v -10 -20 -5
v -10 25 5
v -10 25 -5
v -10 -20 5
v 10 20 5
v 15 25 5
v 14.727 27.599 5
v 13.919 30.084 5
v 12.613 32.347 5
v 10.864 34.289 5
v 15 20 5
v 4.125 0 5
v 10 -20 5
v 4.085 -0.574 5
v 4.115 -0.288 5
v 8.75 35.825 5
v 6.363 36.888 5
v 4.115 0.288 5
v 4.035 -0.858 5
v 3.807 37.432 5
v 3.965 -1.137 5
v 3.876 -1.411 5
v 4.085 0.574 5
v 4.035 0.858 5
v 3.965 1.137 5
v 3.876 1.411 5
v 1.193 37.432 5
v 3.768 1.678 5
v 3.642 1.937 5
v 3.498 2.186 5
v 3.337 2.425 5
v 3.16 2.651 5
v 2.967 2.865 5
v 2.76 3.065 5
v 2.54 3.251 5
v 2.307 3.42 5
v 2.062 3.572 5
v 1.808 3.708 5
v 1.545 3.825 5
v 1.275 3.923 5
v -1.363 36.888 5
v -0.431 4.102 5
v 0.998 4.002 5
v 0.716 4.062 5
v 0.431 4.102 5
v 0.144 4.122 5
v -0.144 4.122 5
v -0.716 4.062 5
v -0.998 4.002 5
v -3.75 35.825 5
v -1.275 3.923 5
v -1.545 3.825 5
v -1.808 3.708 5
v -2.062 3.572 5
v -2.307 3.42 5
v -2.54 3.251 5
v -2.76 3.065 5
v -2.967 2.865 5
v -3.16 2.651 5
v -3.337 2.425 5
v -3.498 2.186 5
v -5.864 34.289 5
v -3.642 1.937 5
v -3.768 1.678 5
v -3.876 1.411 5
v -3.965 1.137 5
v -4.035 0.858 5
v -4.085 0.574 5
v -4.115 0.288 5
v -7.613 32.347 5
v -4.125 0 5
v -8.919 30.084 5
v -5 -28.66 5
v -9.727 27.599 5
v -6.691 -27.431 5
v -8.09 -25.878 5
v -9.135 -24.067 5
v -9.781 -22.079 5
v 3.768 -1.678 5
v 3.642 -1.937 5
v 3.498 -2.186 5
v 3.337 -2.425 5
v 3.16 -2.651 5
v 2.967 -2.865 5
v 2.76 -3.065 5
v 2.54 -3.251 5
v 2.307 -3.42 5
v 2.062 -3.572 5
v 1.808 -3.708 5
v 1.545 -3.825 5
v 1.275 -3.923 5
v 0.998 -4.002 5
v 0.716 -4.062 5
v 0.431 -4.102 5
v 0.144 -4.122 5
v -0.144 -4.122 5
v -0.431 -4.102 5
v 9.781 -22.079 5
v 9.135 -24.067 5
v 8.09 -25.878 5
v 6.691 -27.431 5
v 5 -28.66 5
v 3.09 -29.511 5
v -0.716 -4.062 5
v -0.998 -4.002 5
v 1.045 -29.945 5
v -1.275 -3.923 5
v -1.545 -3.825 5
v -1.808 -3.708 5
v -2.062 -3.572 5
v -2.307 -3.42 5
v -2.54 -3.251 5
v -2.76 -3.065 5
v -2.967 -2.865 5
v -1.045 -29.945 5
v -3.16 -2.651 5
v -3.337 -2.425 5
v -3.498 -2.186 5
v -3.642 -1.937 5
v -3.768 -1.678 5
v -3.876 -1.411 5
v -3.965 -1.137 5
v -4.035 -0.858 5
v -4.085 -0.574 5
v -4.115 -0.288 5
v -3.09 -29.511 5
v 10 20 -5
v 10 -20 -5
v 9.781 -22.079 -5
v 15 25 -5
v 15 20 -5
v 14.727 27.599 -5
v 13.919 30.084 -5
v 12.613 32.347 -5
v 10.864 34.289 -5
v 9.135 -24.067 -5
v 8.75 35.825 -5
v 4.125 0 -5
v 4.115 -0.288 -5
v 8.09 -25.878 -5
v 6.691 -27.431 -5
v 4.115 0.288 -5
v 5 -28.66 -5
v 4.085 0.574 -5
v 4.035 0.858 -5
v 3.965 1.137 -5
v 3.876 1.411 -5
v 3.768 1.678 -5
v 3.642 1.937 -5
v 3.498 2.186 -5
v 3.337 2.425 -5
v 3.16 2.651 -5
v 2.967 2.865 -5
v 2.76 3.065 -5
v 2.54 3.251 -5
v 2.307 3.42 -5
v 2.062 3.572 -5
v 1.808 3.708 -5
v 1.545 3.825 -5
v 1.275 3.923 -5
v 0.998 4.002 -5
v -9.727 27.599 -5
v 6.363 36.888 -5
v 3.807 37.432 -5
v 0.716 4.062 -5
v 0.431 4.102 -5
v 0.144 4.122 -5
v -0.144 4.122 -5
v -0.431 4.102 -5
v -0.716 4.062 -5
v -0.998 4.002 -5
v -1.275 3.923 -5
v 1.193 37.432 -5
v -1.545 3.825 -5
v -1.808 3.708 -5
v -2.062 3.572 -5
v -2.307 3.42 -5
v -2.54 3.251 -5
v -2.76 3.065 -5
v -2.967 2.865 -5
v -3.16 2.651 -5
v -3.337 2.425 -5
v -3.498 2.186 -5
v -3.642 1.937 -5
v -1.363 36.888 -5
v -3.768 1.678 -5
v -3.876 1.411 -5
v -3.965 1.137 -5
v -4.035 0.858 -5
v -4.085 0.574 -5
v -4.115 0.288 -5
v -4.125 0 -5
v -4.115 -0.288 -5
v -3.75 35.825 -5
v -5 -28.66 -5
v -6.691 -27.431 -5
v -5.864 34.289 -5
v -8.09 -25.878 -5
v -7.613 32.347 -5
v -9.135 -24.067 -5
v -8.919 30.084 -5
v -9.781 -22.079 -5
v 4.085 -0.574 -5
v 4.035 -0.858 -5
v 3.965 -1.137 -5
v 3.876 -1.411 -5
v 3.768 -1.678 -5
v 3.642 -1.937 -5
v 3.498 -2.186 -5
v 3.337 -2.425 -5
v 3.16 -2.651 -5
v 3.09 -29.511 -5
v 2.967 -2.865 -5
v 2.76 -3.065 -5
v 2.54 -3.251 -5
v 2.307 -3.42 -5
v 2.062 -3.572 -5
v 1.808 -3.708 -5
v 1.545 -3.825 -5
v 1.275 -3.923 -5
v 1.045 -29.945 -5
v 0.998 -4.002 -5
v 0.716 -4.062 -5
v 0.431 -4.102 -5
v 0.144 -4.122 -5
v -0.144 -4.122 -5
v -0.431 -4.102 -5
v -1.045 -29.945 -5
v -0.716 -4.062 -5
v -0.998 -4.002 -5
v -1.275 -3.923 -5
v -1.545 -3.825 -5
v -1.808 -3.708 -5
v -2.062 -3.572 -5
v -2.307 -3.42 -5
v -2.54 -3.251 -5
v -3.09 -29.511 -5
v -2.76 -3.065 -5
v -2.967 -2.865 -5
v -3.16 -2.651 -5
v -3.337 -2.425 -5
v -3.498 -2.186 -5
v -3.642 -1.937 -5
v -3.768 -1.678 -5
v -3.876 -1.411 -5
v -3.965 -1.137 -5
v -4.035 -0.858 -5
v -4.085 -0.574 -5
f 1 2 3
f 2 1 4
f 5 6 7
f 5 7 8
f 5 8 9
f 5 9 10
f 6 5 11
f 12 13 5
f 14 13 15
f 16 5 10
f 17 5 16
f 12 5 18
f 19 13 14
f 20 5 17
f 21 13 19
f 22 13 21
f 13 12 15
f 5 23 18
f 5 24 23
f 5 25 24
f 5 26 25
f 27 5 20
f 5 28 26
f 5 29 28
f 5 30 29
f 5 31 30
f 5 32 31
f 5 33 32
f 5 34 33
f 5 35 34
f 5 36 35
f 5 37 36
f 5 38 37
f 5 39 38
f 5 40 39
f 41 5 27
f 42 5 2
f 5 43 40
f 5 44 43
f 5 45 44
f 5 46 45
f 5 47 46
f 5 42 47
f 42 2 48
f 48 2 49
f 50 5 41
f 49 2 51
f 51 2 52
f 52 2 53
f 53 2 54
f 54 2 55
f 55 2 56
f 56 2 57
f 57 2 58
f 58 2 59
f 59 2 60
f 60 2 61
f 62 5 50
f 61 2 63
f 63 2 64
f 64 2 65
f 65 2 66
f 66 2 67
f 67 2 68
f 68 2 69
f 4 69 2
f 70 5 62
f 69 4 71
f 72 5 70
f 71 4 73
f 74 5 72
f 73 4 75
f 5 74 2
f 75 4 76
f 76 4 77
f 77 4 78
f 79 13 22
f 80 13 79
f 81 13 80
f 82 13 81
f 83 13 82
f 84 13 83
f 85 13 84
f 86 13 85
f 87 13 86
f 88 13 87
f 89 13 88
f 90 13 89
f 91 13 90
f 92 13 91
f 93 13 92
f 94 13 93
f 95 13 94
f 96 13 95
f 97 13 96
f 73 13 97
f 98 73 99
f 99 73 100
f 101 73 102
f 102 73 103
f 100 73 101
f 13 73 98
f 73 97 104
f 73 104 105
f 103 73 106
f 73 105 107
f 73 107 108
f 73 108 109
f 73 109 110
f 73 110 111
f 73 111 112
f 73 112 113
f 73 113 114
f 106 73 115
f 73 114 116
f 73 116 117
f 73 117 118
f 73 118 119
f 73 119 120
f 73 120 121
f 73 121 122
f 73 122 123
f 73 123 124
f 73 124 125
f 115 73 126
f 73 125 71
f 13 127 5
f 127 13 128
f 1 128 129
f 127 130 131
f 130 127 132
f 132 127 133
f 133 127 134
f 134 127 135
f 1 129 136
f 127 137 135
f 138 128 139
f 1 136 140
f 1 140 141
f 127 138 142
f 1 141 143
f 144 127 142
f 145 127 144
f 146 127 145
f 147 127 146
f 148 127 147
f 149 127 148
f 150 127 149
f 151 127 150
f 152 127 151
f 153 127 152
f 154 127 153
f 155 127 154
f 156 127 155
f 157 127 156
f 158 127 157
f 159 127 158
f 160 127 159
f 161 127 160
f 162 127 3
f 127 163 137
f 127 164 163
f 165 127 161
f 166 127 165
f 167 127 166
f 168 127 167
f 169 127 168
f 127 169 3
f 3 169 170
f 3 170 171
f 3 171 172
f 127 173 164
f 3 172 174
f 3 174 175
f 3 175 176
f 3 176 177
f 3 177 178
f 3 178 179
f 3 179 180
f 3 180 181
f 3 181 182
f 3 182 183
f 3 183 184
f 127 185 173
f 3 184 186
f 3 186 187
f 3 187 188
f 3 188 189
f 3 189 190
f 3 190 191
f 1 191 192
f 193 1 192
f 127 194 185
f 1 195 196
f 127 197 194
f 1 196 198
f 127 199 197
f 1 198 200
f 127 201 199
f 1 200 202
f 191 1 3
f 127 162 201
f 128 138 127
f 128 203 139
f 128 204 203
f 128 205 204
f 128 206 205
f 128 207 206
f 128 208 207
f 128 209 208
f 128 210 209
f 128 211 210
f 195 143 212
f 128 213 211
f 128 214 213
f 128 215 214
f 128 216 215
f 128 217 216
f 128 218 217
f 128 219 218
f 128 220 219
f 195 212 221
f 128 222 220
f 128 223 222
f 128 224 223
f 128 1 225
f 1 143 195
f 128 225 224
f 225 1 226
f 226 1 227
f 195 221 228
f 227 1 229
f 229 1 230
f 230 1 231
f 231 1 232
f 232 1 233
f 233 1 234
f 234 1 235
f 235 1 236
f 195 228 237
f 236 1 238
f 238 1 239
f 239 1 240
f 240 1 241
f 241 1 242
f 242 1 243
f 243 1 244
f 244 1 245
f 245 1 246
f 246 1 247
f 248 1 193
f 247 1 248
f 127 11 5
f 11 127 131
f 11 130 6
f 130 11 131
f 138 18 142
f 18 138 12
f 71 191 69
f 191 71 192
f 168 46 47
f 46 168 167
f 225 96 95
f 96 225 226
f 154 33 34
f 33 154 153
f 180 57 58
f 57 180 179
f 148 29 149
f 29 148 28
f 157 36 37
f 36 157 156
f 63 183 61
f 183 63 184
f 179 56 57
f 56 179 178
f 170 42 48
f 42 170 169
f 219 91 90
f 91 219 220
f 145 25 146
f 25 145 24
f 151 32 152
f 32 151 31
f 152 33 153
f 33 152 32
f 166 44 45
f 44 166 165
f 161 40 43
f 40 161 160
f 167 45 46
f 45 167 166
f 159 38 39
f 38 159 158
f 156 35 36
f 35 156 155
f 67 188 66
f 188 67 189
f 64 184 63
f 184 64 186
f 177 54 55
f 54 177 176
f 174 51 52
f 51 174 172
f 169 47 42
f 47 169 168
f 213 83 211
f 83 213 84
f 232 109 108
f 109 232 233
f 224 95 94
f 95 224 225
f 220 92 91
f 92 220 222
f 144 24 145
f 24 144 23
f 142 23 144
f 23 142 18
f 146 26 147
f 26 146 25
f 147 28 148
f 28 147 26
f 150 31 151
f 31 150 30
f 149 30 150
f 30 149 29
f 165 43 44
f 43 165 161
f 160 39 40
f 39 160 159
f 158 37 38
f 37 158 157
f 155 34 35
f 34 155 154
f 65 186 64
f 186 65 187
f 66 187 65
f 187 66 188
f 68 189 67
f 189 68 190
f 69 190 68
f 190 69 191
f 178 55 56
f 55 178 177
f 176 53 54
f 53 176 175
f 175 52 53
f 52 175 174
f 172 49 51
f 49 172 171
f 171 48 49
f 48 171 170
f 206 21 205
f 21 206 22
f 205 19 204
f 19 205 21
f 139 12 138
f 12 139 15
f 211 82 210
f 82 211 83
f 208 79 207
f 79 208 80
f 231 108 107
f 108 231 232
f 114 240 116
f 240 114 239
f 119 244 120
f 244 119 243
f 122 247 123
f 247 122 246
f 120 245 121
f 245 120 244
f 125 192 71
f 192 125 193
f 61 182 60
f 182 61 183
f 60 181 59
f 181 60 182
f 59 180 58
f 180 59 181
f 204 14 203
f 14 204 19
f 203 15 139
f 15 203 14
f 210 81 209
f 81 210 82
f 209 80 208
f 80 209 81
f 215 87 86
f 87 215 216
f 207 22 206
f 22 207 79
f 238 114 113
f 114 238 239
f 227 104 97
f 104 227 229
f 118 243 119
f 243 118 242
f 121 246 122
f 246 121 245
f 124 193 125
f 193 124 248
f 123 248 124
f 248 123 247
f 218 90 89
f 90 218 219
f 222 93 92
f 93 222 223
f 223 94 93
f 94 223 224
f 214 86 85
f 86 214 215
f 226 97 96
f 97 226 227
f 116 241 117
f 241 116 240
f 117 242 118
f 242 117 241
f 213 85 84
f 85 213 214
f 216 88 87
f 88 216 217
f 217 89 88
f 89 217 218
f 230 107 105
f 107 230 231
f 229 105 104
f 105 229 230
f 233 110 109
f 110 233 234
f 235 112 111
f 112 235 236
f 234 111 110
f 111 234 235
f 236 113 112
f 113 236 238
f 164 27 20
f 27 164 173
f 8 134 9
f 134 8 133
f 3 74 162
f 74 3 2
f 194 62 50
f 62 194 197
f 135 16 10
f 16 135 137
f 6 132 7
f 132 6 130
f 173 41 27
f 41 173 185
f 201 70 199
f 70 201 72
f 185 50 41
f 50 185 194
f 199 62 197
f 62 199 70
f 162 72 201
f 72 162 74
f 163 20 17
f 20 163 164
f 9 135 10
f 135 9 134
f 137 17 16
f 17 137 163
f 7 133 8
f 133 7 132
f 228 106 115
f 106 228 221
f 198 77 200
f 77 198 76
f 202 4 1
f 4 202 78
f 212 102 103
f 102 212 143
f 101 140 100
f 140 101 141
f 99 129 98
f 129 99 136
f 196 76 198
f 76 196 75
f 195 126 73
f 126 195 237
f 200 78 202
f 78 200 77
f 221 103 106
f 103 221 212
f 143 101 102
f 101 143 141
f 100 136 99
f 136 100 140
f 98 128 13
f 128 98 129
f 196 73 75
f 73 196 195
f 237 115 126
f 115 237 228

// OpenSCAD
//cube([120,120,3], center = true);
//translate([-45,-45,0])cylinder(h = 3, r=15, $fn = 180, center = true);
//rotate_extrude(convexity = 10, $fn = A) translate([20+1.5, 0, 0])circle(d = 3, $fn = B);
//module Test(){
//import("asd.stl");

//sphere(2, $fn=100); 

//linear_extrude(height = 10)text("asd",10);


/*
linear_extrude(height=100,twist=360,$fn=360) 
translate([45,0,0])
rotate([0,0,9])
square([5,15]);

rotate_extrude(angle = 270, $fn=30)
translate([10,0,0])square([10,5]);
*/

/*

CubePoints = [
  [  0,  0,  0 ],  //0
  [ 10,  0,  0 ],  //1
  [ 10,  7,  0 ],  //2
  [  0,  7,  0 ],  //3
  [  0,  0,  5 ],  //4
  [ 10,  0,  5 ],  //5
  [ 10,  7,  5 ],  //6
  [  0,  7,  5 ]]; //7
  
CubeFaces = [
  [0,1,2,3],  // bottom
  [4,5,1,0],  // front
  [7,6,5,4],  // top
  [5,6,2,1],  // right
  [6,7,3,2],  // back
  [7,4,0,3]]; // left
  
polyhedron( CubePoints, CubeFaces );
     
*/     
difference(){   
union(){
cube([20,40,10], center = true);

translate([2.5,22.5,0])cube([25,5,10], center = true);
}
cylinder(h = 12, d=8.25, $fn = 90, center = true);


}

translate([2.5,25,-5])rotate_extrude(angle = 180, $fn=30)
translate([0,0,0])square([12.5,10]);



translate([0,-20,-5])rotate([0,0,180])rotate_extrude(angle = 180, $fn=30)
translate([0,0,0])square([10,10]);
